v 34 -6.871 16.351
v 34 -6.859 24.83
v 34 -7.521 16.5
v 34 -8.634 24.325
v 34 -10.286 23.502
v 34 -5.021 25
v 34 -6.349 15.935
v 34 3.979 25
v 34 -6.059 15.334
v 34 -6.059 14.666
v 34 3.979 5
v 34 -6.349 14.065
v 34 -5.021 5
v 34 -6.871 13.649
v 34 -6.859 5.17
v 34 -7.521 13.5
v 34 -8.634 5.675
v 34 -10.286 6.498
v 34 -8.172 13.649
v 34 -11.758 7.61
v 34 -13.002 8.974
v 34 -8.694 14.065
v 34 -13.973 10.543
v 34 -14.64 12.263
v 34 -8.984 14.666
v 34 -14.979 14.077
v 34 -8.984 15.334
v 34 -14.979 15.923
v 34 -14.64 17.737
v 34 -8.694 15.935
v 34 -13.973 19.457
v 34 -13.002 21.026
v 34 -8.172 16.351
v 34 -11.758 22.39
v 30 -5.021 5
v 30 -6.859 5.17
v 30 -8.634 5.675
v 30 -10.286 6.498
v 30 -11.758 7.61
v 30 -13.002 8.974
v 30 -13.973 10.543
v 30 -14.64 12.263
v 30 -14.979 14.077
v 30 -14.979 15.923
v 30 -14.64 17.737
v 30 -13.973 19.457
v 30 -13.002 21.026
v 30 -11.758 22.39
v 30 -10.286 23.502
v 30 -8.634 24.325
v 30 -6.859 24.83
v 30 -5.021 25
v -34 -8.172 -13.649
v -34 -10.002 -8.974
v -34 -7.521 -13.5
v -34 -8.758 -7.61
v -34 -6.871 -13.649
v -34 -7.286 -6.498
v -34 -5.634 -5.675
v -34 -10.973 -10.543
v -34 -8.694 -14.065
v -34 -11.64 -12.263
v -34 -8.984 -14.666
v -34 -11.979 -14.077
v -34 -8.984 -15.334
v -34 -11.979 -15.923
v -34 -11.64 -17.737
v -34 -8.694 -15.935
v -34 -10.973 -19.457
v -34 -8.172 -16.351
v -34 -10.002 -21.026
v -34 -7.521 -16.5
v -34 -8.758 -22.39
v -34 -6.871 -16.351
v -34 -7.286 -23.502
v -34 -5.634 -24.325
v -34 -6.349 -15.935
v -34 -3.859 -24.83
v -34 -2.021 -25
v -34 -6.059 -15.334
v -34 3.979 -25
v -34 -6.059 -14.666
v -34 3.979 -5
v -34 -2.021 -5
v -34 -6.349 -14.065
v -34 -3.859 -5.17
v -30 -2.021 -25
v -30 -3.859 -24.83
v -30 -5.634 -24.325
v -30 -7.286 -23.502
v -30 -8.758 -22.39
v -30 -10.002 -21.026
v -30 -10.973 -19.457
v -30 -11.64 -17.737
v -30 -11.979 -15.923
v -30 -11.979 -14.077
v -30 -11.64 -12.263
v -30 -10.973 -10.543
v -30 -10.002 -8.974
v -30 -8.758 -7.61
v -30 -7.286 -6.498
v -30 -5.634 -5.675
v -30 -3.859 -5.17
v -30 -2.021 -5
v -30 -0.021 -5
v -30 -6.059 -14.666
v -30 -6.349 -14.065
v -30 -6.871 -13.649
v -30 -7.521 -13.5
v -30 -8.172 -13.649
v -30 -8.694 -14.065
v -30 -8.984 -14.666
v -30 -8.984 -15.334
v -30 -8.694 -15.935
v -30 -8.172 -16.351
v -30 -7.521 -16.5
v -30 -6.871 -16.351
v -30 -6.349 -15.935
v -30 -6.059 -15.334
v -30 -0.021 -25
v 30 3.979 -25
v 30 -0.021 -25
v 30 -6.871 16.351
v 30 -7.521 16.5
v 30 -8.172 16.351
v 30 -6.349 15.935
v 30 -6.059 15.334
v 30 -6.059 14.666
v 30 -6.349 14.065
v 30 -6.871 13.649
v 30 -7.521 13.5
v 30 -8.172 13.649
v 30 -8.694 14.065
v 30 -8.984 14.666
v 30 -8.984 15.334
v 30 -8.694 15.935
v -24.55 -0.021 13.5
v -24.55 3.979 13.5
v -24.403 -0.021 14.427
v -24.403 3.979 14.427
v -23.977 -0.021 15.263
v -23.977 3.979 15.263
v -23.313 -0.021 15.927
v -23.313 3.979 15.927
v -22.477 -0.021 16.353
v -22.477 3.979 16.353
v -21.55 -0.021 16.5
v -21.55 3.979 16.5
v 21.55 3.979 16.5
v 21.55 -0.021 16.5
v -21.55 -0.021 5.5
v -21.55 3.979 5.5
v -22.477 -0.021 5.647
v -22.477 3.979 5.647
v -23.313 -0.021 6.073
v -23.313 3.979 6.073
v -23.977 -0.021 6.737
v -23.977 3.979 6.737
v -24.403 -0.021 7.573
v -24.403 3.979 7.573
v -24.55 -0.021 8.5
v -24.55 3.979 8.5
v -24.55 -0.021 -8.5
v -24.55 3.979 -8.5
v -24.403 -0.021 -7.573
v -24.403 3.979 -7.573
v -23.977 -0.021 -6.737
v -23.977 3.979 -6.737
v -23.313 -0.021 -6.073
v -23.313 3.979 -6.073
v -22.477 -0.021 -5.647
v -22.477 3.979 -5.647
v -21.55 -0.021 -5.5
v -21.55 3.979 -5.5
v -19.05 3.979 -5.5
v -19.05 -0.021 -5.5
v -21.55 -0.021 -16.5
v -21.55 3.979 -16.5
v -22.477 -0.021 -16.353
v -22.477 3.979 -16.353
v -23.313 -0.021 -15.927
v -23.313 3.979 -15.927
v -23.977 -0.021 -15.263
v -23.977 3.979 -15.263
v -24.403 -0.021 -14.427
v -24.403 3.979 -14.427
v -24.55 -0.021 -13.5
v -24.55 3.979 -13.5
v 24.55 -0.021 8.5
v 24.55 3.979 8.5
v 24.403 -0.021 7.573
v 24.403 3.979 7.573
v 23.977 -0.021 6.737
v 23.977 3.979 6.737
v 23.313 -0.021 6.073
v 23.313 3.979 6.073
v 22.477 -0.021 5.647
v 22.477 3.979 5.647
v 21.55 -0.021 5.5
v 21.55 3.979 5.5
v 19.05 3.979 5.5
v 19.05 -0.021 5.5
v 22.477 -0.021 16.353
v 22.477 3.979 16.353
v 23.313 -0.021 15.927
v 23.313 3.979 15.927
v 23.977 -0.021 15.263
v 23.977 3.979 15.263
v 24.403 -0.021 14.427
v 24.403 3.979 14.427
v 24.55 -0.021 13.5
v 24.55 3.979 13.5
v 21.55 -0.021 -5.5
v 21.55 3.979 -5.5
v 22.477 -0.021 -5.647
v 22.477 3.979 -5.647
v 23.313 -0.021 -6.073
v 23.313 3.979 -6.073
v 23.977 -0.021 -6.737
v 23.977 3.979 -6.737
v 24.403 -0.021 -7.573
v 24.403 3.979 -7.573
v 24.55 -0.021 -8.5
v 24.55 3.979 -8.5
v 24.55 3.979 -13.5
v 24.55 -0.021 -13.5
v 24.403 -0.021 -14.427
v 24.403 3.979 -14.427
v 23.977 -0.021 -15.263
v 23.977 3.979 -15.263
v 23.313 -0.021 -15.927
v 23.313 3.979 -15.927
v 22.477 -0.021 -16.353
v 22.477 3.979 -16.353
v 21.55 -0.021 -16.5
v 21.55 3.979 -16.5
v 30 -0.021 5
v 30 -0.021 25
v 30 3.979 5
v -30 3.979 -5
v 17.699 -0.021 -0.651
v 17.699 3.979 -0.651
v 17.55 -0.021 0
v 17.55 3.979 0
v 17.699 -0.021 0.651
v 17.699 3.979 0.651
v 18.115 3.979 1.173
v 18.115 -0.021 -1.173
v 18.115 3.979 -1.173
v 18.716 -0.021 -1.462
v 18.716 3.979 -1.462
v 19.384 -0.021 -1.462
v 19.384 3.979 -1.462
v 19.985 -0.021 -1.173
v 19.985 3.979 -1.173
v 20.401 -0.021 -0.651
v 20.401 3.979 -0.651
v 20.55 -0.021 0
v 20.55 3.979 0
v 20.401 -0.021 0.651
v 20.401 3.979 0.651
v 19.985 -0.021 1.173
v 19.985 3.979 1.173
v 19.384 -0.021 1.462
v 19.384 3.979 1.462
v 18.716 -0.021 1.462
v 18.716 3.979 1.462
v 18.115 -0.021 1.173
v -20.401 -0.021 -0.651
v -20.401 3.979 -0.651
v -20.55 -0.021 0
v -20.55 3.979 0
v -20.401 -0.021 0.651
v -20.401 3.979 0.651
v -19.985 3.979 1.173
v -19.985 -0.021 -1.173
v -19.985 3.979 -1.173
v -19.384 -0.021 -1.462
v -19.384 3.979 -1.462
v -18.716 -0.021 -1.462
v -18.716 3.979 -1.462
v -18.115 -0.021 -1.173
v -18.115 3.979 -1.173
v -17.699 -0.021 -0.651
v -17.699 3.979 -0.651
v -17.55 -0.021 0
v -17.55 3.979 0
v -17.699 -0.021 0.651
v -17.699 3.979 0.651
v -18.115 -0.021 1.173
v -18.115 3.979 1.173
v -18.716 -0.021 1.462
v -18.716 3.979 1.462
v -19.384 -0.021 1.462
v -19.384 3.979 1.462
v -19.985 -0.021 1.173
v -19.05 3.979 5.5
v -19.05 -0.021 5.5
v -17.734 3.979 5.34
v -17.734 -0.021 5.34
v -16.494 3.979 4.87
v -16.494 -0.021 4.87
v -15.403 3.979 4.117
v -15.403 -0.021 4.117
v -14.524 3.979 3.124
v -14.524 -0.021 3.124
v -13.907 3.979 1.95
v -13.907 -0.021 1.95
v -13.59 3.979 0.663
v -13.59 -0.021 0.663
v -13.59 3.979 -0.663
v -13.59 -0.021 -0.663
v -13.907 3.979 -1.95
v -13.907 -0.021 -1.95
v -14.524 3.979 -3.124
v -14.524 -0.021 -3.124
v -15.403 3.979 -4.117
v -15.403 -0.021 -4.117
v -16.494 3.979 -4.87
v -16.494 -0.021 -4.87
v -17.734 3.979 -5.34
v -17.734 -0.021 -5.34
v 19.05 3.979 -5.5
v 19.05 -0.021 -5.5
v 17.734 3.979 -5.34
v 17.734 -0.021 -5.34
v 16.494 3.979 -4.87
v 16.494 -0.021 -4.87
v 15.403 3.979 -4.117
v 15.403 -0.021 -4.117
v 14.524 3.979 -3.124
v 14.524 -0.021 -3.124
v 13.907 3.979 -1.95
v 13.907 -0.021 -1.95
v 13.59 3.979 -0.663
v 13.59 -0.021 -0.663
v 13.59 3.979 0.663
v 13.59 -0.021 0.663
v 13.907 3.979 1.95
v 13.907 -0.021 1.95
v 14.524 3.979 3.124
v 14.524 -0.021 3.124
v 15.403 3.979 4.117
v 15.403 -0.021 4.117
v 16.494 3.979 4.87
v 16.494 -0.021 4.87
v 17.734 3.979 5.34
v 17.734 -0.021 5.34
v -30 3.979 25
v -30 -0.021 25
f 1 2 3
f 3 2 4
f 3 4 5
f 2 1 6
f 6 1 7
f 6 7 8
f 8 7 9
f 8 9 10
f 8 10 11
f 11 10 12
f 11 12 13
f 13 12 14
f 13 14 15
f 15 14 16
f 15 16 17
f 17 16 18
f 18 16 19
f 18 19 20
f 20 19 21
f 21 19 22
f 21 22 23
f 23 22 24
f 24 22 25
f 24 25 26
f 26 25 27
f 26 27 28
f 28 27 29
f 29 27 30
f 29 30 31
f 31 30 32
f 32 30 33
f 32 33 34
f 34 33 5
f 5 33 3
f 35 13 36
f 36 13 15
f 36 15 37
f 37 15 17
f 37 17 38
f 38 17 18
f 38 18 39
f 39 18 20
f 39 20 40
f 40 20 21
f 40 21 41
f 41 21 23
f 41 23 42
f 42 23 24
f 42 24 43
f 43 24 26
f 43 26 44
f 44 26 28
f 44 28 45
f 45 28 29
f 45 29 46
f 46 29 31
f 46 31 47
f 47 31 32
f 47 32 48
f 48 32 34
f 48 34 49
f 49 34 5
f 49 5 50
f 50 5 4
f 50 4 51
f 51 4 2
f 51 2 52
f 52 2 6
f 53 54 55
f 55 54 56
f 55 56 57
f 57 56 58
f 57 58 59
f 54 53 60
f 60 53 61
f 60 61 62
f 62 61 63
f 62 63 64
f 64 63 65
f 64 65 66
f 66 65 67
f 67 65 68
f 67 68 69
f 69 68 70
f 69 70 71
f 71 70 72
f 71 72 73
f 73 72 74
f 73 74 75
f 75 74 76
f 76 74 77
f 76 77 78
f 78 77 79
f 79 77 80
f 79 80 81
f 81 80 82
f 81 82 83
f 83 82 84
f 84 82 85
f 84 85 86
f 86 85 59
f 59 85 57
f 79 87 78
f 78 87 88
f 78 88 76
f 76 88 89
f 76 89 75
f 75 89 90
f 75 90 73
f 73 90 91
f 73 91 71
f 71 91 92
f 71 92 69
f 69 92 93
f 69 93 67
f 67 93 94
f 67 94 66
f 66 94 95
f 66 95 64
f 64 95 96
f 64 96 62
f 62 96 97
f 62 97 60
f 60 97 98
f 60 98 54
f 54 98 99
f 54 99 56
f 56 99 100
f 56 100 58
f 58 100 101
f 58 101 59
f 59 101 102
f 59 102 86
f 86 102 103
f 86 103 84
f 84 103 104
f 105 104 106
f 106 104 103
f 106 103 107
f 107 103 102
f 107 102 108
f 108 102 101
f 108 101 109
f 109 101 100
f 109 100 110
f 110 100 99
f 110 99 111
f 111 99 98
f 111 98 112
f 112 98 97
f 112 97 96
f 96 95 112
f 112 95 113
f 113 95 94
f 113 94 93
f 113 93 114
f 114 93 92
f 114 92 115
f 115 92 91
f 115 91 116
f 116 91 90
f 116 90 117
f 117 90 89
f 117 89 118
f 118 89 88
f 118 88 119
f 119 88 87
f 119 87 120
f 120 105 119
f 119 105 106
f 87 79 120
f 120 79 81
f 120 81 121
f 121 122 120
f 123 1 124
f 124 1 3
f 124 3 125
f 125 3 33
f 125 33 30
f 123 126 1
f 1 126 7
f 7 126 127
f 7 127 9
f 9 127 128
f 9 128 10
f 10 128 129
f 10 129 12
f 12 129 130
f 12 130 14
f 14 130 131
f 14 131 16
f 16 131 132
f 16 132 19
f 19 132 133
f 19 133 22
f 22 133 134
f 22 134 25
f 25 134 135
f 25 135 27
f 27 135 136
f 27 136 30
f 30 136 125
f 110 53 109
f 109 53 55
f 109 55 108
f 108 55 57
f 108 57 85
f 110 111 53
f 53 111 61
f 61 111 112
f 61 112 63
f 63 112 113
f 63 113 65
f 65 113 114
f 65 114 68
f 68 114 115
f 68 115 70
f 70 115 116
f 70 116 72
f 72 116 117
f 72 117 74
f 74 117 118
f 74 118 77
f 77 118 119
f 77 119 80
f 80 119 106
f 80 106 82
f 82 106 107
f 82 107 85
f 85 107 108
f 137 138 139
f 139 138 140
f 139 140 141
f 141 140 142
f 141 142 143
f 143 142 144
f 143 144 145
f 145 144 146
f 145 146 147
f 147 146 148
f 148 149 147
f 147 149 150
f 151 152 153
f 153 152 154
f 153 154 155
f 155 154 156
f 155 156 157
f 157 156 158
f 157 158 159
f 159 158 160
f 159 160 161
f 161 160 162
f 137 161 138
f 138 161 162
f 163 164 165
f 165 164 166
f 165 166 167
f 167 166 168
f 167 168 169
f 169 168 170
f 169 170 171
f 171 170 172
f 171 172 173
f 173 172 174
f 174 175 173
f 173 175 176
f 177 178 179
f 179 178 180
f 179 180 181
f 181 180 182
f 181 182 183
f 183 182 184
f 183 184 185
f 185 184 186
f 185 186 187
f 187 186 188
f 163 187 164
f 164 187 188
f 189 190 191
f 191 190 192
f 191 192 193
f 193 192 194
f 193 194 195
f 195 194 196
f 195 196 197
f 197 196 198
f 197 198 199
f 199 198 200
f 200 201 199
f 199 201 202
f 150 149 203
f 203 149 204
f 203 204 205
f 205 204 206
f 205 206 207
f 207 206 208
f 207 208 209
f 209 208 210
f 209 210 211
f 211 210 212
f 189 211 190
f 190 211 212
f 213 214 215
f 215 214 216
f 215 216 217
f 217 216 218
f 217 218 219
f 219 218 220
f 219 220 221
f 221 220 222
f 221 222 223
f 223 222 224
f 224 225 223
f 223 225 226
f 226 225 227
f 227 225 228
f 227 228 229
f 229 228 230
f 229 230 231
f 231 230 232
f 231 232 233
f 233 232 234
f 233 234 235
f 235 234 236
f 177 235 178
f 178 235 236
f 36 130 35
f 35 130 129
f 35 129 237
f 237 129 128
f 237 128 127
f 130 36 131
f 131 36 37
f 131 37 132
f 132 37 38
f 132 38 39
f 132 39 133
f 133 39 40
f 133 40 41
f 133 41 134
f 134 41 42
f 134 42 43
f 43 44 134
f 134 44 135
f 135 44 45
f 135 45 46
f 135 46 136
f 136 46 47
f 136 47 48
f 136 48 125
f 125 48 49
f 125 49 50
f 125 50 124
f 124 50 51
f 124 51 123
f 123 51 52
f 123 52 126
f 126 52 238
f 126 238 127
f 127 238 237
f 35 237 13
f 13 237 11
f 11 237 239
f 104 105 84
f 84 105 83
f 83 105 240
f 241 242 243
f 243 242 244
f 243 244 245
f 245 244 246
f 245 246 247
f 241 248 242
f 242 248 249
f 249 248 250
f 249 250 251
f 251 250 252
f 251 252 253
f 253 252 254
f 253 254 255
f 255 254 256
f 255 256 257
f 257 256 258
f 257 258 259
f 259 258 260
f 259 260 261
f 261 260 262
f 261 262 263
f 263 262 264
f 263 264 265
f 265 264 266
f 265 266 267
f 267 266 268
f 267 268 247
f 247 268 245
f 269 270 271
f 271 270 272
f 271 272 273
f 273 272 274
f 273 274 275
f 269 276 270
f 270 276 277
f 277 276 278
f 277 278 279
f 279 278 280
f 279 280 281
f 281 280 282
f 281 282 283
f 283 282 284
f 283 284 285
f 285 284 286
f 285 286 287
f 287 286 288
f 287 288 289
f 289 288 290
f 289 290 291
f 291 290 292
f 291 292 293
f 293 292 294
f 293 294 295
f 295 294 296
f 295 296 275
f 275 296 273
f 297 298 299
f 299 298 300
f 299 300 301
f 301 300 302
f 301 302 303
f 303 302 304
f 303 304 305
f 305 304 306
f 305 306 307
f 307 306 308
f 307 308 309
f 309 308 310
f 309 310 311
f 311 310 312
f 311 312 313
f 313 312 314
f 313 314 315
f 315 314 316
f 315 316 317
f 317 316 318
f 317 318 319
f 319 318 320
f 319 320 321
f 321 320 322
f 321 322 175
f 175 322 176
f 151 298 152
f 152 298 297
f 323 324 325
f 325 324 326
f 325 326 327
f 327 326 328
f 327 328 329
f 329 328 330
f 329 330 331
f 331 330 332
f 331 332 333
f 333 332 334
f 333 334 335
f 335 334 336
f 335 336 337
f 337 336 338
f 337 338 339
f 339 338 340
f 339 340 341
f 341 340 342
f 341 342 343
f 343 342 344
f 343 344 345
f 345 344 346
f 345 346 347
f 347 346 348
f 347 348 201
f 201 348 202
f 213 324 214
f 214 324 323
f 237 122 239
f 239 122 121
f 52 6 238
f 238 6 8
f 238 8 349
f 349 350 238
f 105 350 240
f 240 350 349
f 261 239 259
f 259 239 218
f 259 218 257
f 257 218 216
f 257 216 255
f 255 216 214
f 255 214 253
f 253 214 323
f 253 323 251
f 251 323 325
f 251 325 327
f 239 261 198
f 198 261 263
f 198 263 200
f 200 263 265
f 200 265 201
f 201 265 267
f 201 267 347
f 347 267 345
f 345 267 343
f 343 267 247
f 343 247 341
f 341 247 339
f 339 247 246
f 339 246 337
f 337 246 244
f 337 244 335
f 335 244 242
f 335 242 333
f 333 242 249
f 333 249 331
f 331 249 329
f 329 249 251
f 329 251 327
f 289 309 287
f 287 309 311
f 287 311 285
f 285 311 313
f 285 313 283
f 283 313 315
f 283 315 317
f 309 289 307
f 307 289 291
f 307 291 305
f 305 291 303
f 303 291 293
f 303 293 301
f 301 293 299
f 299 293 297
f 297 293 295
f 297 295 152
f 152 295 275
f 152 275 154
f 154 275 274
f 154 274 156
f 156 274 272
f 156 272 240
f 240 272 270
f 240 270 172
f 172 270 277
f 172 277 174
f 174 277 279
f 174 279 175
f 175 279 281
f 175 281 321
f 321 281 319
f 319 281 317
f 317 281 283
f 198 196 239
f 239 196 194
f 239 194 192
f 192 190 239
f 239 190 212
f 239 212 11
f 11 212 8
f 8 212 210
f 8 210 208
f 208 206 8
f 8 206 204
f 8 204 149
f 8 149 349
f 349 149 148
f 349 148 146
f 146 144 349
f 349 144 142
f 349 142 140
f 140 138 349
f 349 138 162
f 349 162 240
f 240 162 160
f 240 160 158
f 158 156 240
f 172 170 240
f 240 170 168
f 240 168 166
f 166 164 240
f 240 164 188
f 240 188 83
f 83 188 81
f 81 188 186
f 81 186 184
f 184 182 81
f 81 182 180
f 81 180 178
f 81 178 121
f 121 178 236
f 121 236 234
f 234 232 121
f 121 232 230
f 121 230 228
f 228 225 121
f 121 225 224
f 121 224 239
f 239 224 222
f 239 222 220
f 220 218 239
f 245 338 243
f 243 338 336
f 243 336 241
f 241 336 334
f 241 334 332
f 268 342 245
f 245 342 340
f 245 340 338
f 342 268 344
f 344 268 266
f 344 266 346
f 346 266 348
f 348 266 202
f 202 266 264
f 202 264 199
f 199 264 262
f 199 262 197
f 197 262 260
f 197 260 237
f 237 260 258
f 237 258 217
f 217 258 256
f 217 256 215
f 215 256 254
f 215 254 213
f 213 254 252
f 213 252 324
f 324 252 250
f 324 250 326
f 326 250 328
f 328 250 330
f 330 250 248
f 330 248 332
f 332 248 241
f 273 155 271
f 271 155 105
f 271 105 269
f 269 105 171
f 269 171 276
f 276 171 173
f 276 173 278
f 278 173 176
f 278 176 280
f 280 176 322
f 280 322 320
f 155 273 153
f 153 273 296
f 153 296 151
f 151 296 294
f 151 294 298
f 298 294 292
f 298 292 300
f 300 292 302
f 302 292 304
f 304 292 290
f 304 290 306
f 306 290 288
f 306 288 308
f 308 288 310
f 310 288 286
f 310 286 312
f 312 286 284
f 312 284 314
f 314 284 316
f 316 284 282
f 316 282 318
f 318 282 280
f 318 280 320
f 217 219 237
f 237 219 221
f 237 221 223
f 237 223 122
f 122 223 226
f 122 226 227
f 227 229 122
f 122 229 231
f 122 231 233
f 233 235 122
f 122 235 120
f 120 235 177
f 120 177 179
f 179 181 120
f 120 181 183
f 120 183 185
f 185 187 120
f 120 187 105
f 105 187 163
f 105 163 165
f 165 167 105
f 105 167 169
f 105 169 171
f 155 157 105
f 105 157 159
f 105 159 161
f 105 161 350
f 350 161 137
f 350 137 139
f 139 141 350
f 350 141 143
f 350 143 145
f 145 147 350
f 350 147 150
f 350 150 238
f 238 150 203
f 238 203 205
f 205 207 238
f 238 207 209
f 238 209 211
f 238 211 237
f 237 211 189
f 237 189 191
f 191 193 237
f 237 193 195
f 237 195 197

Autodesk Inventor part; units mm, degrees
ref_plane "YZ Plane" through (0, 0, 0) normal (1, 0, 0) x (0, 1, 0)
ref_plane "XZ Plane" through (0, 0, 0) normal (0, 1, 0) x (-1, 0, 0)
ref_plane "XY Plane" through (0, 0, 0) normal (0, 0, 1) x (1, 0, 0)
sketch "Sketch1" plane through (0, 0, 0) normal (0, 1, 0) x (-1, 0, 0)
  line L0 (-30, 25) -> (30, 25)
  line L1 (30, 25) -> (30, -25)
  line L2 (30, -25) -> (-30, -25)
  line L3 (-30, -25) -> (-30, 25)
  line L4 (-30, 25) -> (30, -25) construction
  line L5 (30, 25) -> (-30, -25) construction
  point P0 (0, 0)
  dimension "d0" = 60
  dimension "d1" = 50
extrude "Extrusion1" add sketch "Sketch1" along normal blind 4
sketch "Sketch2" plane through (0, 4, 0) normal (0, 1, 0) x (1, 0, 0)
  line L0 (24.55, -16.5) -> (-24.55, -16.5)
  line L1 (-24.55, -16.5) -> (-24.55, 16.5)
  line L2 (-24.55, 16.5) -> (24.55, 16.5)
  line L3 (24.55, 16.5) -> (24.55, -16.5)
  line L4 (24.55, -16.5) -> (-24.55, 16.5) construction
  line L5 (-24.55, -16.5) -> (24.55, 16.5) construction
  line L6 (-24.55, 0) -> (-19.05, 0) construction
  arc A0 (-19.05, -5.5) -> (-19.05, 5.5) centre (-19.05, 0) ccw
  circle A1 centre (-19.05, 0) radius 1.5
  line L7 (-24.55, -5.5) -> (-19.05, -5.5)
  line L8 (-19.05, 5.5) -> (-24.55, 5.5)
  line L9 (0, 0) -> (0, 7.8655) construction
  arc A2 (19.05, 5.5) -> (19.05, -5.5) centre (19.05, 0) ccw
  circle A3 centre (19.05, 0) radius 1.5
  line L10 (24.55, -5.5) -> (19.05, -5.5)
  line L11 (19.05, 5.5) -> (24.55, 5.5)
  point P0 (0, 0)
  dimension "d4" = 49.1
  dimension "d5" = 33
  dimension "d6" = 5.5
  dimension "d7" = 3
extrude "Extrusion2" cut sketch "Sketch2" against normal through all contours L0 L1 L7 A0 L8 L2 L3 L11 A2 L10 | A1 | A3
sketch "Sketch3" plane through (0, 0, 0) normal (0, -1, 0) x (1, 0, 0)
  line L0 (-30, 25) -> (30, 25) projected
  line L1 (-30, 25) -> (-34, 25)
  line L2 (-34, 25) -> (-34, 5)
  line L3 (-34, 5) -> (-30, 5)
  line L4 (-30, 5) -> (-30, 25)
  line L5 (-34, 25) -> (-10, 25)
  line L6 (-10, 25) -> (-10, 29)
  line L7 (-10, 29) -> (-34, 29)
  line L8 (-34, 29) -> (-34, 25)
  line L9 (-30, -25) -> (-30, 25) projected
  line L10 (-30, 0) -> (-43.5069, 0) construction
  line L11 (-30, -25) -> (-34, -25)
  line L12 (-34, -25) -> (-34, -5)
  line L13 (-34, -5) -> (-30, -5)
  line L14 (-30, -5) -> (-30, -25)
  line L15 (-34, -25) -> (-10, -25)
  line L16 (-10, -25) -> (-10, -29)
  line L17 (-10, -29) -> (-34, -29)
  line L18 (-34, -29) -> (-34, -25)
  line L19 (0, 25) -> (0, 63.1817) construction
  line L20 (30, 25) -> (34, 25)
  line L21 (34, 25) -> (34, 5)
  line L22 (34, 5) -> (30, 5)
  line L23 (30, 5) -> (30, 25)
  line L24 (34, 25) -> (10, 25)
  line L25 (10, 25) -> (10, 29)
  line L26 (10, 29) -> (34, 29)
  line L27 (34, 29) -> (34, 25)
  line L28 (30, -25) -> (30, 25)
  line L29 (30, 0) -> (43.5069, 0) construction
  line L30 (30, -25) -> (34, -25)
  line L31 (34, -25) -> (34, -5)
  line L32 (34, -5) -> (30, -5)
  line L33 (30, -5) -> (30, -25)
  line L34 (34, -25) -> (10, -25)
  line L35 (10, -25) -> (10, -29)
  line L36 (10, -29) -> (34, -29)
  line L37 (34, -29) -> (34, -25)
  line L38 (30, -25) -> (30, -29)
  line L39 (30, 25) -> (30, 29)
  point P0 (0, 0)
  point P1 (-30, -25)
  point P2 (-30, -5)
  point P3 (30, -5)
  point P4 (30, -25)
  point P5 (30, -25)
  dimension "d21" = 4
  dimension "d22" = 20
  dimension "d23" = 24
  dimension "d24" = 4
extrude "Extrusion3" add sketch "Sketch3" along normal blind 15 and the other way blind 4 contours L20 L21 L22 L23 | L11 L12 L13 L9
fillet "Fillet1" radius 3 12 edges at (24.55, 2, -16.5) (24.55, 2, -5.5) (24.55, 2, 16.5) (24.55, 2, 5.5) (-24.55, 2, -16.5) (-24.55, 2, -5.5) (-24.55, 2, 5.5) (-24.55, 2, 16.5) (19.05, 2, 5.5) (19.05, 2, -5.5) (-19.05, 2, -5.5) (-19.05, 2, 5.5)
sketch "Sketch7" plane through (-30, 0, -5) normal (1, 0, 0) x (0, 0, -1)
  line L0 (0, -15) -> (20, -15) projected
  line L1 (10, -15) -> (10, 0)
  line L2 (20, 0) -> (0, 0) projected
  circle A0 centre (10, -7.5) radius 1.5
  line L3 (-5, 0) -> (-5, -12.3055)
  circle A1 centre (-20, -7.5) radius 1.5
  dimension "d47" = 3
extrude "Extrusion8" cut sketch "Sketch7" along normal through all both and the other way through all
sketch "Sketch9" plane through (0, -15, 0) normal (0, -1, 0) x (1, 0, 0)
  line L0 (-34, -5) -> (-34, -25) projected
  line L1 (-30, -25) -> (-30, -5) projected
  line L2 (-30, -5) -> (-34, -5) projected
  line L3 (-34, -25) -> (-30, -25) projected
  line L4 (-34, 5) -> (-30, 5) projected
  line L5 (-30, 5) -> (-30, 25) projected
  line L6 (-30, 25) -> (-34, 25) projected
  line L7 (-34, 25) -> (-34, 5) projected
  line L8 (30, 29) -> (10, 29) projected
  line L9 (10, 29) -> (10, 25) projected
  line L10 (10, 25) -> (30, 25) projected
  line L11 (30, 25) -> (30, 29) projected
  line L12 (10, -29) -> (30, -29) projected
  line L13 (30, -29) -> (30, -25) projected
  line L14 (30, -25) -> (10, -25) projected
  line L15 (10, -25) -> (10, -29) projected
  point P0 (0, 0)
extrude "Extrusion10" cut sketch "Sketch9" against normal blind 3
fillet "Fillet2" radius 10 4 edges at (-32, -12, -5) (-32, -12, -25) (32, -15, 5) (32, -15, 25)
properties part number "LED_mount" material "ABS Plastic"
